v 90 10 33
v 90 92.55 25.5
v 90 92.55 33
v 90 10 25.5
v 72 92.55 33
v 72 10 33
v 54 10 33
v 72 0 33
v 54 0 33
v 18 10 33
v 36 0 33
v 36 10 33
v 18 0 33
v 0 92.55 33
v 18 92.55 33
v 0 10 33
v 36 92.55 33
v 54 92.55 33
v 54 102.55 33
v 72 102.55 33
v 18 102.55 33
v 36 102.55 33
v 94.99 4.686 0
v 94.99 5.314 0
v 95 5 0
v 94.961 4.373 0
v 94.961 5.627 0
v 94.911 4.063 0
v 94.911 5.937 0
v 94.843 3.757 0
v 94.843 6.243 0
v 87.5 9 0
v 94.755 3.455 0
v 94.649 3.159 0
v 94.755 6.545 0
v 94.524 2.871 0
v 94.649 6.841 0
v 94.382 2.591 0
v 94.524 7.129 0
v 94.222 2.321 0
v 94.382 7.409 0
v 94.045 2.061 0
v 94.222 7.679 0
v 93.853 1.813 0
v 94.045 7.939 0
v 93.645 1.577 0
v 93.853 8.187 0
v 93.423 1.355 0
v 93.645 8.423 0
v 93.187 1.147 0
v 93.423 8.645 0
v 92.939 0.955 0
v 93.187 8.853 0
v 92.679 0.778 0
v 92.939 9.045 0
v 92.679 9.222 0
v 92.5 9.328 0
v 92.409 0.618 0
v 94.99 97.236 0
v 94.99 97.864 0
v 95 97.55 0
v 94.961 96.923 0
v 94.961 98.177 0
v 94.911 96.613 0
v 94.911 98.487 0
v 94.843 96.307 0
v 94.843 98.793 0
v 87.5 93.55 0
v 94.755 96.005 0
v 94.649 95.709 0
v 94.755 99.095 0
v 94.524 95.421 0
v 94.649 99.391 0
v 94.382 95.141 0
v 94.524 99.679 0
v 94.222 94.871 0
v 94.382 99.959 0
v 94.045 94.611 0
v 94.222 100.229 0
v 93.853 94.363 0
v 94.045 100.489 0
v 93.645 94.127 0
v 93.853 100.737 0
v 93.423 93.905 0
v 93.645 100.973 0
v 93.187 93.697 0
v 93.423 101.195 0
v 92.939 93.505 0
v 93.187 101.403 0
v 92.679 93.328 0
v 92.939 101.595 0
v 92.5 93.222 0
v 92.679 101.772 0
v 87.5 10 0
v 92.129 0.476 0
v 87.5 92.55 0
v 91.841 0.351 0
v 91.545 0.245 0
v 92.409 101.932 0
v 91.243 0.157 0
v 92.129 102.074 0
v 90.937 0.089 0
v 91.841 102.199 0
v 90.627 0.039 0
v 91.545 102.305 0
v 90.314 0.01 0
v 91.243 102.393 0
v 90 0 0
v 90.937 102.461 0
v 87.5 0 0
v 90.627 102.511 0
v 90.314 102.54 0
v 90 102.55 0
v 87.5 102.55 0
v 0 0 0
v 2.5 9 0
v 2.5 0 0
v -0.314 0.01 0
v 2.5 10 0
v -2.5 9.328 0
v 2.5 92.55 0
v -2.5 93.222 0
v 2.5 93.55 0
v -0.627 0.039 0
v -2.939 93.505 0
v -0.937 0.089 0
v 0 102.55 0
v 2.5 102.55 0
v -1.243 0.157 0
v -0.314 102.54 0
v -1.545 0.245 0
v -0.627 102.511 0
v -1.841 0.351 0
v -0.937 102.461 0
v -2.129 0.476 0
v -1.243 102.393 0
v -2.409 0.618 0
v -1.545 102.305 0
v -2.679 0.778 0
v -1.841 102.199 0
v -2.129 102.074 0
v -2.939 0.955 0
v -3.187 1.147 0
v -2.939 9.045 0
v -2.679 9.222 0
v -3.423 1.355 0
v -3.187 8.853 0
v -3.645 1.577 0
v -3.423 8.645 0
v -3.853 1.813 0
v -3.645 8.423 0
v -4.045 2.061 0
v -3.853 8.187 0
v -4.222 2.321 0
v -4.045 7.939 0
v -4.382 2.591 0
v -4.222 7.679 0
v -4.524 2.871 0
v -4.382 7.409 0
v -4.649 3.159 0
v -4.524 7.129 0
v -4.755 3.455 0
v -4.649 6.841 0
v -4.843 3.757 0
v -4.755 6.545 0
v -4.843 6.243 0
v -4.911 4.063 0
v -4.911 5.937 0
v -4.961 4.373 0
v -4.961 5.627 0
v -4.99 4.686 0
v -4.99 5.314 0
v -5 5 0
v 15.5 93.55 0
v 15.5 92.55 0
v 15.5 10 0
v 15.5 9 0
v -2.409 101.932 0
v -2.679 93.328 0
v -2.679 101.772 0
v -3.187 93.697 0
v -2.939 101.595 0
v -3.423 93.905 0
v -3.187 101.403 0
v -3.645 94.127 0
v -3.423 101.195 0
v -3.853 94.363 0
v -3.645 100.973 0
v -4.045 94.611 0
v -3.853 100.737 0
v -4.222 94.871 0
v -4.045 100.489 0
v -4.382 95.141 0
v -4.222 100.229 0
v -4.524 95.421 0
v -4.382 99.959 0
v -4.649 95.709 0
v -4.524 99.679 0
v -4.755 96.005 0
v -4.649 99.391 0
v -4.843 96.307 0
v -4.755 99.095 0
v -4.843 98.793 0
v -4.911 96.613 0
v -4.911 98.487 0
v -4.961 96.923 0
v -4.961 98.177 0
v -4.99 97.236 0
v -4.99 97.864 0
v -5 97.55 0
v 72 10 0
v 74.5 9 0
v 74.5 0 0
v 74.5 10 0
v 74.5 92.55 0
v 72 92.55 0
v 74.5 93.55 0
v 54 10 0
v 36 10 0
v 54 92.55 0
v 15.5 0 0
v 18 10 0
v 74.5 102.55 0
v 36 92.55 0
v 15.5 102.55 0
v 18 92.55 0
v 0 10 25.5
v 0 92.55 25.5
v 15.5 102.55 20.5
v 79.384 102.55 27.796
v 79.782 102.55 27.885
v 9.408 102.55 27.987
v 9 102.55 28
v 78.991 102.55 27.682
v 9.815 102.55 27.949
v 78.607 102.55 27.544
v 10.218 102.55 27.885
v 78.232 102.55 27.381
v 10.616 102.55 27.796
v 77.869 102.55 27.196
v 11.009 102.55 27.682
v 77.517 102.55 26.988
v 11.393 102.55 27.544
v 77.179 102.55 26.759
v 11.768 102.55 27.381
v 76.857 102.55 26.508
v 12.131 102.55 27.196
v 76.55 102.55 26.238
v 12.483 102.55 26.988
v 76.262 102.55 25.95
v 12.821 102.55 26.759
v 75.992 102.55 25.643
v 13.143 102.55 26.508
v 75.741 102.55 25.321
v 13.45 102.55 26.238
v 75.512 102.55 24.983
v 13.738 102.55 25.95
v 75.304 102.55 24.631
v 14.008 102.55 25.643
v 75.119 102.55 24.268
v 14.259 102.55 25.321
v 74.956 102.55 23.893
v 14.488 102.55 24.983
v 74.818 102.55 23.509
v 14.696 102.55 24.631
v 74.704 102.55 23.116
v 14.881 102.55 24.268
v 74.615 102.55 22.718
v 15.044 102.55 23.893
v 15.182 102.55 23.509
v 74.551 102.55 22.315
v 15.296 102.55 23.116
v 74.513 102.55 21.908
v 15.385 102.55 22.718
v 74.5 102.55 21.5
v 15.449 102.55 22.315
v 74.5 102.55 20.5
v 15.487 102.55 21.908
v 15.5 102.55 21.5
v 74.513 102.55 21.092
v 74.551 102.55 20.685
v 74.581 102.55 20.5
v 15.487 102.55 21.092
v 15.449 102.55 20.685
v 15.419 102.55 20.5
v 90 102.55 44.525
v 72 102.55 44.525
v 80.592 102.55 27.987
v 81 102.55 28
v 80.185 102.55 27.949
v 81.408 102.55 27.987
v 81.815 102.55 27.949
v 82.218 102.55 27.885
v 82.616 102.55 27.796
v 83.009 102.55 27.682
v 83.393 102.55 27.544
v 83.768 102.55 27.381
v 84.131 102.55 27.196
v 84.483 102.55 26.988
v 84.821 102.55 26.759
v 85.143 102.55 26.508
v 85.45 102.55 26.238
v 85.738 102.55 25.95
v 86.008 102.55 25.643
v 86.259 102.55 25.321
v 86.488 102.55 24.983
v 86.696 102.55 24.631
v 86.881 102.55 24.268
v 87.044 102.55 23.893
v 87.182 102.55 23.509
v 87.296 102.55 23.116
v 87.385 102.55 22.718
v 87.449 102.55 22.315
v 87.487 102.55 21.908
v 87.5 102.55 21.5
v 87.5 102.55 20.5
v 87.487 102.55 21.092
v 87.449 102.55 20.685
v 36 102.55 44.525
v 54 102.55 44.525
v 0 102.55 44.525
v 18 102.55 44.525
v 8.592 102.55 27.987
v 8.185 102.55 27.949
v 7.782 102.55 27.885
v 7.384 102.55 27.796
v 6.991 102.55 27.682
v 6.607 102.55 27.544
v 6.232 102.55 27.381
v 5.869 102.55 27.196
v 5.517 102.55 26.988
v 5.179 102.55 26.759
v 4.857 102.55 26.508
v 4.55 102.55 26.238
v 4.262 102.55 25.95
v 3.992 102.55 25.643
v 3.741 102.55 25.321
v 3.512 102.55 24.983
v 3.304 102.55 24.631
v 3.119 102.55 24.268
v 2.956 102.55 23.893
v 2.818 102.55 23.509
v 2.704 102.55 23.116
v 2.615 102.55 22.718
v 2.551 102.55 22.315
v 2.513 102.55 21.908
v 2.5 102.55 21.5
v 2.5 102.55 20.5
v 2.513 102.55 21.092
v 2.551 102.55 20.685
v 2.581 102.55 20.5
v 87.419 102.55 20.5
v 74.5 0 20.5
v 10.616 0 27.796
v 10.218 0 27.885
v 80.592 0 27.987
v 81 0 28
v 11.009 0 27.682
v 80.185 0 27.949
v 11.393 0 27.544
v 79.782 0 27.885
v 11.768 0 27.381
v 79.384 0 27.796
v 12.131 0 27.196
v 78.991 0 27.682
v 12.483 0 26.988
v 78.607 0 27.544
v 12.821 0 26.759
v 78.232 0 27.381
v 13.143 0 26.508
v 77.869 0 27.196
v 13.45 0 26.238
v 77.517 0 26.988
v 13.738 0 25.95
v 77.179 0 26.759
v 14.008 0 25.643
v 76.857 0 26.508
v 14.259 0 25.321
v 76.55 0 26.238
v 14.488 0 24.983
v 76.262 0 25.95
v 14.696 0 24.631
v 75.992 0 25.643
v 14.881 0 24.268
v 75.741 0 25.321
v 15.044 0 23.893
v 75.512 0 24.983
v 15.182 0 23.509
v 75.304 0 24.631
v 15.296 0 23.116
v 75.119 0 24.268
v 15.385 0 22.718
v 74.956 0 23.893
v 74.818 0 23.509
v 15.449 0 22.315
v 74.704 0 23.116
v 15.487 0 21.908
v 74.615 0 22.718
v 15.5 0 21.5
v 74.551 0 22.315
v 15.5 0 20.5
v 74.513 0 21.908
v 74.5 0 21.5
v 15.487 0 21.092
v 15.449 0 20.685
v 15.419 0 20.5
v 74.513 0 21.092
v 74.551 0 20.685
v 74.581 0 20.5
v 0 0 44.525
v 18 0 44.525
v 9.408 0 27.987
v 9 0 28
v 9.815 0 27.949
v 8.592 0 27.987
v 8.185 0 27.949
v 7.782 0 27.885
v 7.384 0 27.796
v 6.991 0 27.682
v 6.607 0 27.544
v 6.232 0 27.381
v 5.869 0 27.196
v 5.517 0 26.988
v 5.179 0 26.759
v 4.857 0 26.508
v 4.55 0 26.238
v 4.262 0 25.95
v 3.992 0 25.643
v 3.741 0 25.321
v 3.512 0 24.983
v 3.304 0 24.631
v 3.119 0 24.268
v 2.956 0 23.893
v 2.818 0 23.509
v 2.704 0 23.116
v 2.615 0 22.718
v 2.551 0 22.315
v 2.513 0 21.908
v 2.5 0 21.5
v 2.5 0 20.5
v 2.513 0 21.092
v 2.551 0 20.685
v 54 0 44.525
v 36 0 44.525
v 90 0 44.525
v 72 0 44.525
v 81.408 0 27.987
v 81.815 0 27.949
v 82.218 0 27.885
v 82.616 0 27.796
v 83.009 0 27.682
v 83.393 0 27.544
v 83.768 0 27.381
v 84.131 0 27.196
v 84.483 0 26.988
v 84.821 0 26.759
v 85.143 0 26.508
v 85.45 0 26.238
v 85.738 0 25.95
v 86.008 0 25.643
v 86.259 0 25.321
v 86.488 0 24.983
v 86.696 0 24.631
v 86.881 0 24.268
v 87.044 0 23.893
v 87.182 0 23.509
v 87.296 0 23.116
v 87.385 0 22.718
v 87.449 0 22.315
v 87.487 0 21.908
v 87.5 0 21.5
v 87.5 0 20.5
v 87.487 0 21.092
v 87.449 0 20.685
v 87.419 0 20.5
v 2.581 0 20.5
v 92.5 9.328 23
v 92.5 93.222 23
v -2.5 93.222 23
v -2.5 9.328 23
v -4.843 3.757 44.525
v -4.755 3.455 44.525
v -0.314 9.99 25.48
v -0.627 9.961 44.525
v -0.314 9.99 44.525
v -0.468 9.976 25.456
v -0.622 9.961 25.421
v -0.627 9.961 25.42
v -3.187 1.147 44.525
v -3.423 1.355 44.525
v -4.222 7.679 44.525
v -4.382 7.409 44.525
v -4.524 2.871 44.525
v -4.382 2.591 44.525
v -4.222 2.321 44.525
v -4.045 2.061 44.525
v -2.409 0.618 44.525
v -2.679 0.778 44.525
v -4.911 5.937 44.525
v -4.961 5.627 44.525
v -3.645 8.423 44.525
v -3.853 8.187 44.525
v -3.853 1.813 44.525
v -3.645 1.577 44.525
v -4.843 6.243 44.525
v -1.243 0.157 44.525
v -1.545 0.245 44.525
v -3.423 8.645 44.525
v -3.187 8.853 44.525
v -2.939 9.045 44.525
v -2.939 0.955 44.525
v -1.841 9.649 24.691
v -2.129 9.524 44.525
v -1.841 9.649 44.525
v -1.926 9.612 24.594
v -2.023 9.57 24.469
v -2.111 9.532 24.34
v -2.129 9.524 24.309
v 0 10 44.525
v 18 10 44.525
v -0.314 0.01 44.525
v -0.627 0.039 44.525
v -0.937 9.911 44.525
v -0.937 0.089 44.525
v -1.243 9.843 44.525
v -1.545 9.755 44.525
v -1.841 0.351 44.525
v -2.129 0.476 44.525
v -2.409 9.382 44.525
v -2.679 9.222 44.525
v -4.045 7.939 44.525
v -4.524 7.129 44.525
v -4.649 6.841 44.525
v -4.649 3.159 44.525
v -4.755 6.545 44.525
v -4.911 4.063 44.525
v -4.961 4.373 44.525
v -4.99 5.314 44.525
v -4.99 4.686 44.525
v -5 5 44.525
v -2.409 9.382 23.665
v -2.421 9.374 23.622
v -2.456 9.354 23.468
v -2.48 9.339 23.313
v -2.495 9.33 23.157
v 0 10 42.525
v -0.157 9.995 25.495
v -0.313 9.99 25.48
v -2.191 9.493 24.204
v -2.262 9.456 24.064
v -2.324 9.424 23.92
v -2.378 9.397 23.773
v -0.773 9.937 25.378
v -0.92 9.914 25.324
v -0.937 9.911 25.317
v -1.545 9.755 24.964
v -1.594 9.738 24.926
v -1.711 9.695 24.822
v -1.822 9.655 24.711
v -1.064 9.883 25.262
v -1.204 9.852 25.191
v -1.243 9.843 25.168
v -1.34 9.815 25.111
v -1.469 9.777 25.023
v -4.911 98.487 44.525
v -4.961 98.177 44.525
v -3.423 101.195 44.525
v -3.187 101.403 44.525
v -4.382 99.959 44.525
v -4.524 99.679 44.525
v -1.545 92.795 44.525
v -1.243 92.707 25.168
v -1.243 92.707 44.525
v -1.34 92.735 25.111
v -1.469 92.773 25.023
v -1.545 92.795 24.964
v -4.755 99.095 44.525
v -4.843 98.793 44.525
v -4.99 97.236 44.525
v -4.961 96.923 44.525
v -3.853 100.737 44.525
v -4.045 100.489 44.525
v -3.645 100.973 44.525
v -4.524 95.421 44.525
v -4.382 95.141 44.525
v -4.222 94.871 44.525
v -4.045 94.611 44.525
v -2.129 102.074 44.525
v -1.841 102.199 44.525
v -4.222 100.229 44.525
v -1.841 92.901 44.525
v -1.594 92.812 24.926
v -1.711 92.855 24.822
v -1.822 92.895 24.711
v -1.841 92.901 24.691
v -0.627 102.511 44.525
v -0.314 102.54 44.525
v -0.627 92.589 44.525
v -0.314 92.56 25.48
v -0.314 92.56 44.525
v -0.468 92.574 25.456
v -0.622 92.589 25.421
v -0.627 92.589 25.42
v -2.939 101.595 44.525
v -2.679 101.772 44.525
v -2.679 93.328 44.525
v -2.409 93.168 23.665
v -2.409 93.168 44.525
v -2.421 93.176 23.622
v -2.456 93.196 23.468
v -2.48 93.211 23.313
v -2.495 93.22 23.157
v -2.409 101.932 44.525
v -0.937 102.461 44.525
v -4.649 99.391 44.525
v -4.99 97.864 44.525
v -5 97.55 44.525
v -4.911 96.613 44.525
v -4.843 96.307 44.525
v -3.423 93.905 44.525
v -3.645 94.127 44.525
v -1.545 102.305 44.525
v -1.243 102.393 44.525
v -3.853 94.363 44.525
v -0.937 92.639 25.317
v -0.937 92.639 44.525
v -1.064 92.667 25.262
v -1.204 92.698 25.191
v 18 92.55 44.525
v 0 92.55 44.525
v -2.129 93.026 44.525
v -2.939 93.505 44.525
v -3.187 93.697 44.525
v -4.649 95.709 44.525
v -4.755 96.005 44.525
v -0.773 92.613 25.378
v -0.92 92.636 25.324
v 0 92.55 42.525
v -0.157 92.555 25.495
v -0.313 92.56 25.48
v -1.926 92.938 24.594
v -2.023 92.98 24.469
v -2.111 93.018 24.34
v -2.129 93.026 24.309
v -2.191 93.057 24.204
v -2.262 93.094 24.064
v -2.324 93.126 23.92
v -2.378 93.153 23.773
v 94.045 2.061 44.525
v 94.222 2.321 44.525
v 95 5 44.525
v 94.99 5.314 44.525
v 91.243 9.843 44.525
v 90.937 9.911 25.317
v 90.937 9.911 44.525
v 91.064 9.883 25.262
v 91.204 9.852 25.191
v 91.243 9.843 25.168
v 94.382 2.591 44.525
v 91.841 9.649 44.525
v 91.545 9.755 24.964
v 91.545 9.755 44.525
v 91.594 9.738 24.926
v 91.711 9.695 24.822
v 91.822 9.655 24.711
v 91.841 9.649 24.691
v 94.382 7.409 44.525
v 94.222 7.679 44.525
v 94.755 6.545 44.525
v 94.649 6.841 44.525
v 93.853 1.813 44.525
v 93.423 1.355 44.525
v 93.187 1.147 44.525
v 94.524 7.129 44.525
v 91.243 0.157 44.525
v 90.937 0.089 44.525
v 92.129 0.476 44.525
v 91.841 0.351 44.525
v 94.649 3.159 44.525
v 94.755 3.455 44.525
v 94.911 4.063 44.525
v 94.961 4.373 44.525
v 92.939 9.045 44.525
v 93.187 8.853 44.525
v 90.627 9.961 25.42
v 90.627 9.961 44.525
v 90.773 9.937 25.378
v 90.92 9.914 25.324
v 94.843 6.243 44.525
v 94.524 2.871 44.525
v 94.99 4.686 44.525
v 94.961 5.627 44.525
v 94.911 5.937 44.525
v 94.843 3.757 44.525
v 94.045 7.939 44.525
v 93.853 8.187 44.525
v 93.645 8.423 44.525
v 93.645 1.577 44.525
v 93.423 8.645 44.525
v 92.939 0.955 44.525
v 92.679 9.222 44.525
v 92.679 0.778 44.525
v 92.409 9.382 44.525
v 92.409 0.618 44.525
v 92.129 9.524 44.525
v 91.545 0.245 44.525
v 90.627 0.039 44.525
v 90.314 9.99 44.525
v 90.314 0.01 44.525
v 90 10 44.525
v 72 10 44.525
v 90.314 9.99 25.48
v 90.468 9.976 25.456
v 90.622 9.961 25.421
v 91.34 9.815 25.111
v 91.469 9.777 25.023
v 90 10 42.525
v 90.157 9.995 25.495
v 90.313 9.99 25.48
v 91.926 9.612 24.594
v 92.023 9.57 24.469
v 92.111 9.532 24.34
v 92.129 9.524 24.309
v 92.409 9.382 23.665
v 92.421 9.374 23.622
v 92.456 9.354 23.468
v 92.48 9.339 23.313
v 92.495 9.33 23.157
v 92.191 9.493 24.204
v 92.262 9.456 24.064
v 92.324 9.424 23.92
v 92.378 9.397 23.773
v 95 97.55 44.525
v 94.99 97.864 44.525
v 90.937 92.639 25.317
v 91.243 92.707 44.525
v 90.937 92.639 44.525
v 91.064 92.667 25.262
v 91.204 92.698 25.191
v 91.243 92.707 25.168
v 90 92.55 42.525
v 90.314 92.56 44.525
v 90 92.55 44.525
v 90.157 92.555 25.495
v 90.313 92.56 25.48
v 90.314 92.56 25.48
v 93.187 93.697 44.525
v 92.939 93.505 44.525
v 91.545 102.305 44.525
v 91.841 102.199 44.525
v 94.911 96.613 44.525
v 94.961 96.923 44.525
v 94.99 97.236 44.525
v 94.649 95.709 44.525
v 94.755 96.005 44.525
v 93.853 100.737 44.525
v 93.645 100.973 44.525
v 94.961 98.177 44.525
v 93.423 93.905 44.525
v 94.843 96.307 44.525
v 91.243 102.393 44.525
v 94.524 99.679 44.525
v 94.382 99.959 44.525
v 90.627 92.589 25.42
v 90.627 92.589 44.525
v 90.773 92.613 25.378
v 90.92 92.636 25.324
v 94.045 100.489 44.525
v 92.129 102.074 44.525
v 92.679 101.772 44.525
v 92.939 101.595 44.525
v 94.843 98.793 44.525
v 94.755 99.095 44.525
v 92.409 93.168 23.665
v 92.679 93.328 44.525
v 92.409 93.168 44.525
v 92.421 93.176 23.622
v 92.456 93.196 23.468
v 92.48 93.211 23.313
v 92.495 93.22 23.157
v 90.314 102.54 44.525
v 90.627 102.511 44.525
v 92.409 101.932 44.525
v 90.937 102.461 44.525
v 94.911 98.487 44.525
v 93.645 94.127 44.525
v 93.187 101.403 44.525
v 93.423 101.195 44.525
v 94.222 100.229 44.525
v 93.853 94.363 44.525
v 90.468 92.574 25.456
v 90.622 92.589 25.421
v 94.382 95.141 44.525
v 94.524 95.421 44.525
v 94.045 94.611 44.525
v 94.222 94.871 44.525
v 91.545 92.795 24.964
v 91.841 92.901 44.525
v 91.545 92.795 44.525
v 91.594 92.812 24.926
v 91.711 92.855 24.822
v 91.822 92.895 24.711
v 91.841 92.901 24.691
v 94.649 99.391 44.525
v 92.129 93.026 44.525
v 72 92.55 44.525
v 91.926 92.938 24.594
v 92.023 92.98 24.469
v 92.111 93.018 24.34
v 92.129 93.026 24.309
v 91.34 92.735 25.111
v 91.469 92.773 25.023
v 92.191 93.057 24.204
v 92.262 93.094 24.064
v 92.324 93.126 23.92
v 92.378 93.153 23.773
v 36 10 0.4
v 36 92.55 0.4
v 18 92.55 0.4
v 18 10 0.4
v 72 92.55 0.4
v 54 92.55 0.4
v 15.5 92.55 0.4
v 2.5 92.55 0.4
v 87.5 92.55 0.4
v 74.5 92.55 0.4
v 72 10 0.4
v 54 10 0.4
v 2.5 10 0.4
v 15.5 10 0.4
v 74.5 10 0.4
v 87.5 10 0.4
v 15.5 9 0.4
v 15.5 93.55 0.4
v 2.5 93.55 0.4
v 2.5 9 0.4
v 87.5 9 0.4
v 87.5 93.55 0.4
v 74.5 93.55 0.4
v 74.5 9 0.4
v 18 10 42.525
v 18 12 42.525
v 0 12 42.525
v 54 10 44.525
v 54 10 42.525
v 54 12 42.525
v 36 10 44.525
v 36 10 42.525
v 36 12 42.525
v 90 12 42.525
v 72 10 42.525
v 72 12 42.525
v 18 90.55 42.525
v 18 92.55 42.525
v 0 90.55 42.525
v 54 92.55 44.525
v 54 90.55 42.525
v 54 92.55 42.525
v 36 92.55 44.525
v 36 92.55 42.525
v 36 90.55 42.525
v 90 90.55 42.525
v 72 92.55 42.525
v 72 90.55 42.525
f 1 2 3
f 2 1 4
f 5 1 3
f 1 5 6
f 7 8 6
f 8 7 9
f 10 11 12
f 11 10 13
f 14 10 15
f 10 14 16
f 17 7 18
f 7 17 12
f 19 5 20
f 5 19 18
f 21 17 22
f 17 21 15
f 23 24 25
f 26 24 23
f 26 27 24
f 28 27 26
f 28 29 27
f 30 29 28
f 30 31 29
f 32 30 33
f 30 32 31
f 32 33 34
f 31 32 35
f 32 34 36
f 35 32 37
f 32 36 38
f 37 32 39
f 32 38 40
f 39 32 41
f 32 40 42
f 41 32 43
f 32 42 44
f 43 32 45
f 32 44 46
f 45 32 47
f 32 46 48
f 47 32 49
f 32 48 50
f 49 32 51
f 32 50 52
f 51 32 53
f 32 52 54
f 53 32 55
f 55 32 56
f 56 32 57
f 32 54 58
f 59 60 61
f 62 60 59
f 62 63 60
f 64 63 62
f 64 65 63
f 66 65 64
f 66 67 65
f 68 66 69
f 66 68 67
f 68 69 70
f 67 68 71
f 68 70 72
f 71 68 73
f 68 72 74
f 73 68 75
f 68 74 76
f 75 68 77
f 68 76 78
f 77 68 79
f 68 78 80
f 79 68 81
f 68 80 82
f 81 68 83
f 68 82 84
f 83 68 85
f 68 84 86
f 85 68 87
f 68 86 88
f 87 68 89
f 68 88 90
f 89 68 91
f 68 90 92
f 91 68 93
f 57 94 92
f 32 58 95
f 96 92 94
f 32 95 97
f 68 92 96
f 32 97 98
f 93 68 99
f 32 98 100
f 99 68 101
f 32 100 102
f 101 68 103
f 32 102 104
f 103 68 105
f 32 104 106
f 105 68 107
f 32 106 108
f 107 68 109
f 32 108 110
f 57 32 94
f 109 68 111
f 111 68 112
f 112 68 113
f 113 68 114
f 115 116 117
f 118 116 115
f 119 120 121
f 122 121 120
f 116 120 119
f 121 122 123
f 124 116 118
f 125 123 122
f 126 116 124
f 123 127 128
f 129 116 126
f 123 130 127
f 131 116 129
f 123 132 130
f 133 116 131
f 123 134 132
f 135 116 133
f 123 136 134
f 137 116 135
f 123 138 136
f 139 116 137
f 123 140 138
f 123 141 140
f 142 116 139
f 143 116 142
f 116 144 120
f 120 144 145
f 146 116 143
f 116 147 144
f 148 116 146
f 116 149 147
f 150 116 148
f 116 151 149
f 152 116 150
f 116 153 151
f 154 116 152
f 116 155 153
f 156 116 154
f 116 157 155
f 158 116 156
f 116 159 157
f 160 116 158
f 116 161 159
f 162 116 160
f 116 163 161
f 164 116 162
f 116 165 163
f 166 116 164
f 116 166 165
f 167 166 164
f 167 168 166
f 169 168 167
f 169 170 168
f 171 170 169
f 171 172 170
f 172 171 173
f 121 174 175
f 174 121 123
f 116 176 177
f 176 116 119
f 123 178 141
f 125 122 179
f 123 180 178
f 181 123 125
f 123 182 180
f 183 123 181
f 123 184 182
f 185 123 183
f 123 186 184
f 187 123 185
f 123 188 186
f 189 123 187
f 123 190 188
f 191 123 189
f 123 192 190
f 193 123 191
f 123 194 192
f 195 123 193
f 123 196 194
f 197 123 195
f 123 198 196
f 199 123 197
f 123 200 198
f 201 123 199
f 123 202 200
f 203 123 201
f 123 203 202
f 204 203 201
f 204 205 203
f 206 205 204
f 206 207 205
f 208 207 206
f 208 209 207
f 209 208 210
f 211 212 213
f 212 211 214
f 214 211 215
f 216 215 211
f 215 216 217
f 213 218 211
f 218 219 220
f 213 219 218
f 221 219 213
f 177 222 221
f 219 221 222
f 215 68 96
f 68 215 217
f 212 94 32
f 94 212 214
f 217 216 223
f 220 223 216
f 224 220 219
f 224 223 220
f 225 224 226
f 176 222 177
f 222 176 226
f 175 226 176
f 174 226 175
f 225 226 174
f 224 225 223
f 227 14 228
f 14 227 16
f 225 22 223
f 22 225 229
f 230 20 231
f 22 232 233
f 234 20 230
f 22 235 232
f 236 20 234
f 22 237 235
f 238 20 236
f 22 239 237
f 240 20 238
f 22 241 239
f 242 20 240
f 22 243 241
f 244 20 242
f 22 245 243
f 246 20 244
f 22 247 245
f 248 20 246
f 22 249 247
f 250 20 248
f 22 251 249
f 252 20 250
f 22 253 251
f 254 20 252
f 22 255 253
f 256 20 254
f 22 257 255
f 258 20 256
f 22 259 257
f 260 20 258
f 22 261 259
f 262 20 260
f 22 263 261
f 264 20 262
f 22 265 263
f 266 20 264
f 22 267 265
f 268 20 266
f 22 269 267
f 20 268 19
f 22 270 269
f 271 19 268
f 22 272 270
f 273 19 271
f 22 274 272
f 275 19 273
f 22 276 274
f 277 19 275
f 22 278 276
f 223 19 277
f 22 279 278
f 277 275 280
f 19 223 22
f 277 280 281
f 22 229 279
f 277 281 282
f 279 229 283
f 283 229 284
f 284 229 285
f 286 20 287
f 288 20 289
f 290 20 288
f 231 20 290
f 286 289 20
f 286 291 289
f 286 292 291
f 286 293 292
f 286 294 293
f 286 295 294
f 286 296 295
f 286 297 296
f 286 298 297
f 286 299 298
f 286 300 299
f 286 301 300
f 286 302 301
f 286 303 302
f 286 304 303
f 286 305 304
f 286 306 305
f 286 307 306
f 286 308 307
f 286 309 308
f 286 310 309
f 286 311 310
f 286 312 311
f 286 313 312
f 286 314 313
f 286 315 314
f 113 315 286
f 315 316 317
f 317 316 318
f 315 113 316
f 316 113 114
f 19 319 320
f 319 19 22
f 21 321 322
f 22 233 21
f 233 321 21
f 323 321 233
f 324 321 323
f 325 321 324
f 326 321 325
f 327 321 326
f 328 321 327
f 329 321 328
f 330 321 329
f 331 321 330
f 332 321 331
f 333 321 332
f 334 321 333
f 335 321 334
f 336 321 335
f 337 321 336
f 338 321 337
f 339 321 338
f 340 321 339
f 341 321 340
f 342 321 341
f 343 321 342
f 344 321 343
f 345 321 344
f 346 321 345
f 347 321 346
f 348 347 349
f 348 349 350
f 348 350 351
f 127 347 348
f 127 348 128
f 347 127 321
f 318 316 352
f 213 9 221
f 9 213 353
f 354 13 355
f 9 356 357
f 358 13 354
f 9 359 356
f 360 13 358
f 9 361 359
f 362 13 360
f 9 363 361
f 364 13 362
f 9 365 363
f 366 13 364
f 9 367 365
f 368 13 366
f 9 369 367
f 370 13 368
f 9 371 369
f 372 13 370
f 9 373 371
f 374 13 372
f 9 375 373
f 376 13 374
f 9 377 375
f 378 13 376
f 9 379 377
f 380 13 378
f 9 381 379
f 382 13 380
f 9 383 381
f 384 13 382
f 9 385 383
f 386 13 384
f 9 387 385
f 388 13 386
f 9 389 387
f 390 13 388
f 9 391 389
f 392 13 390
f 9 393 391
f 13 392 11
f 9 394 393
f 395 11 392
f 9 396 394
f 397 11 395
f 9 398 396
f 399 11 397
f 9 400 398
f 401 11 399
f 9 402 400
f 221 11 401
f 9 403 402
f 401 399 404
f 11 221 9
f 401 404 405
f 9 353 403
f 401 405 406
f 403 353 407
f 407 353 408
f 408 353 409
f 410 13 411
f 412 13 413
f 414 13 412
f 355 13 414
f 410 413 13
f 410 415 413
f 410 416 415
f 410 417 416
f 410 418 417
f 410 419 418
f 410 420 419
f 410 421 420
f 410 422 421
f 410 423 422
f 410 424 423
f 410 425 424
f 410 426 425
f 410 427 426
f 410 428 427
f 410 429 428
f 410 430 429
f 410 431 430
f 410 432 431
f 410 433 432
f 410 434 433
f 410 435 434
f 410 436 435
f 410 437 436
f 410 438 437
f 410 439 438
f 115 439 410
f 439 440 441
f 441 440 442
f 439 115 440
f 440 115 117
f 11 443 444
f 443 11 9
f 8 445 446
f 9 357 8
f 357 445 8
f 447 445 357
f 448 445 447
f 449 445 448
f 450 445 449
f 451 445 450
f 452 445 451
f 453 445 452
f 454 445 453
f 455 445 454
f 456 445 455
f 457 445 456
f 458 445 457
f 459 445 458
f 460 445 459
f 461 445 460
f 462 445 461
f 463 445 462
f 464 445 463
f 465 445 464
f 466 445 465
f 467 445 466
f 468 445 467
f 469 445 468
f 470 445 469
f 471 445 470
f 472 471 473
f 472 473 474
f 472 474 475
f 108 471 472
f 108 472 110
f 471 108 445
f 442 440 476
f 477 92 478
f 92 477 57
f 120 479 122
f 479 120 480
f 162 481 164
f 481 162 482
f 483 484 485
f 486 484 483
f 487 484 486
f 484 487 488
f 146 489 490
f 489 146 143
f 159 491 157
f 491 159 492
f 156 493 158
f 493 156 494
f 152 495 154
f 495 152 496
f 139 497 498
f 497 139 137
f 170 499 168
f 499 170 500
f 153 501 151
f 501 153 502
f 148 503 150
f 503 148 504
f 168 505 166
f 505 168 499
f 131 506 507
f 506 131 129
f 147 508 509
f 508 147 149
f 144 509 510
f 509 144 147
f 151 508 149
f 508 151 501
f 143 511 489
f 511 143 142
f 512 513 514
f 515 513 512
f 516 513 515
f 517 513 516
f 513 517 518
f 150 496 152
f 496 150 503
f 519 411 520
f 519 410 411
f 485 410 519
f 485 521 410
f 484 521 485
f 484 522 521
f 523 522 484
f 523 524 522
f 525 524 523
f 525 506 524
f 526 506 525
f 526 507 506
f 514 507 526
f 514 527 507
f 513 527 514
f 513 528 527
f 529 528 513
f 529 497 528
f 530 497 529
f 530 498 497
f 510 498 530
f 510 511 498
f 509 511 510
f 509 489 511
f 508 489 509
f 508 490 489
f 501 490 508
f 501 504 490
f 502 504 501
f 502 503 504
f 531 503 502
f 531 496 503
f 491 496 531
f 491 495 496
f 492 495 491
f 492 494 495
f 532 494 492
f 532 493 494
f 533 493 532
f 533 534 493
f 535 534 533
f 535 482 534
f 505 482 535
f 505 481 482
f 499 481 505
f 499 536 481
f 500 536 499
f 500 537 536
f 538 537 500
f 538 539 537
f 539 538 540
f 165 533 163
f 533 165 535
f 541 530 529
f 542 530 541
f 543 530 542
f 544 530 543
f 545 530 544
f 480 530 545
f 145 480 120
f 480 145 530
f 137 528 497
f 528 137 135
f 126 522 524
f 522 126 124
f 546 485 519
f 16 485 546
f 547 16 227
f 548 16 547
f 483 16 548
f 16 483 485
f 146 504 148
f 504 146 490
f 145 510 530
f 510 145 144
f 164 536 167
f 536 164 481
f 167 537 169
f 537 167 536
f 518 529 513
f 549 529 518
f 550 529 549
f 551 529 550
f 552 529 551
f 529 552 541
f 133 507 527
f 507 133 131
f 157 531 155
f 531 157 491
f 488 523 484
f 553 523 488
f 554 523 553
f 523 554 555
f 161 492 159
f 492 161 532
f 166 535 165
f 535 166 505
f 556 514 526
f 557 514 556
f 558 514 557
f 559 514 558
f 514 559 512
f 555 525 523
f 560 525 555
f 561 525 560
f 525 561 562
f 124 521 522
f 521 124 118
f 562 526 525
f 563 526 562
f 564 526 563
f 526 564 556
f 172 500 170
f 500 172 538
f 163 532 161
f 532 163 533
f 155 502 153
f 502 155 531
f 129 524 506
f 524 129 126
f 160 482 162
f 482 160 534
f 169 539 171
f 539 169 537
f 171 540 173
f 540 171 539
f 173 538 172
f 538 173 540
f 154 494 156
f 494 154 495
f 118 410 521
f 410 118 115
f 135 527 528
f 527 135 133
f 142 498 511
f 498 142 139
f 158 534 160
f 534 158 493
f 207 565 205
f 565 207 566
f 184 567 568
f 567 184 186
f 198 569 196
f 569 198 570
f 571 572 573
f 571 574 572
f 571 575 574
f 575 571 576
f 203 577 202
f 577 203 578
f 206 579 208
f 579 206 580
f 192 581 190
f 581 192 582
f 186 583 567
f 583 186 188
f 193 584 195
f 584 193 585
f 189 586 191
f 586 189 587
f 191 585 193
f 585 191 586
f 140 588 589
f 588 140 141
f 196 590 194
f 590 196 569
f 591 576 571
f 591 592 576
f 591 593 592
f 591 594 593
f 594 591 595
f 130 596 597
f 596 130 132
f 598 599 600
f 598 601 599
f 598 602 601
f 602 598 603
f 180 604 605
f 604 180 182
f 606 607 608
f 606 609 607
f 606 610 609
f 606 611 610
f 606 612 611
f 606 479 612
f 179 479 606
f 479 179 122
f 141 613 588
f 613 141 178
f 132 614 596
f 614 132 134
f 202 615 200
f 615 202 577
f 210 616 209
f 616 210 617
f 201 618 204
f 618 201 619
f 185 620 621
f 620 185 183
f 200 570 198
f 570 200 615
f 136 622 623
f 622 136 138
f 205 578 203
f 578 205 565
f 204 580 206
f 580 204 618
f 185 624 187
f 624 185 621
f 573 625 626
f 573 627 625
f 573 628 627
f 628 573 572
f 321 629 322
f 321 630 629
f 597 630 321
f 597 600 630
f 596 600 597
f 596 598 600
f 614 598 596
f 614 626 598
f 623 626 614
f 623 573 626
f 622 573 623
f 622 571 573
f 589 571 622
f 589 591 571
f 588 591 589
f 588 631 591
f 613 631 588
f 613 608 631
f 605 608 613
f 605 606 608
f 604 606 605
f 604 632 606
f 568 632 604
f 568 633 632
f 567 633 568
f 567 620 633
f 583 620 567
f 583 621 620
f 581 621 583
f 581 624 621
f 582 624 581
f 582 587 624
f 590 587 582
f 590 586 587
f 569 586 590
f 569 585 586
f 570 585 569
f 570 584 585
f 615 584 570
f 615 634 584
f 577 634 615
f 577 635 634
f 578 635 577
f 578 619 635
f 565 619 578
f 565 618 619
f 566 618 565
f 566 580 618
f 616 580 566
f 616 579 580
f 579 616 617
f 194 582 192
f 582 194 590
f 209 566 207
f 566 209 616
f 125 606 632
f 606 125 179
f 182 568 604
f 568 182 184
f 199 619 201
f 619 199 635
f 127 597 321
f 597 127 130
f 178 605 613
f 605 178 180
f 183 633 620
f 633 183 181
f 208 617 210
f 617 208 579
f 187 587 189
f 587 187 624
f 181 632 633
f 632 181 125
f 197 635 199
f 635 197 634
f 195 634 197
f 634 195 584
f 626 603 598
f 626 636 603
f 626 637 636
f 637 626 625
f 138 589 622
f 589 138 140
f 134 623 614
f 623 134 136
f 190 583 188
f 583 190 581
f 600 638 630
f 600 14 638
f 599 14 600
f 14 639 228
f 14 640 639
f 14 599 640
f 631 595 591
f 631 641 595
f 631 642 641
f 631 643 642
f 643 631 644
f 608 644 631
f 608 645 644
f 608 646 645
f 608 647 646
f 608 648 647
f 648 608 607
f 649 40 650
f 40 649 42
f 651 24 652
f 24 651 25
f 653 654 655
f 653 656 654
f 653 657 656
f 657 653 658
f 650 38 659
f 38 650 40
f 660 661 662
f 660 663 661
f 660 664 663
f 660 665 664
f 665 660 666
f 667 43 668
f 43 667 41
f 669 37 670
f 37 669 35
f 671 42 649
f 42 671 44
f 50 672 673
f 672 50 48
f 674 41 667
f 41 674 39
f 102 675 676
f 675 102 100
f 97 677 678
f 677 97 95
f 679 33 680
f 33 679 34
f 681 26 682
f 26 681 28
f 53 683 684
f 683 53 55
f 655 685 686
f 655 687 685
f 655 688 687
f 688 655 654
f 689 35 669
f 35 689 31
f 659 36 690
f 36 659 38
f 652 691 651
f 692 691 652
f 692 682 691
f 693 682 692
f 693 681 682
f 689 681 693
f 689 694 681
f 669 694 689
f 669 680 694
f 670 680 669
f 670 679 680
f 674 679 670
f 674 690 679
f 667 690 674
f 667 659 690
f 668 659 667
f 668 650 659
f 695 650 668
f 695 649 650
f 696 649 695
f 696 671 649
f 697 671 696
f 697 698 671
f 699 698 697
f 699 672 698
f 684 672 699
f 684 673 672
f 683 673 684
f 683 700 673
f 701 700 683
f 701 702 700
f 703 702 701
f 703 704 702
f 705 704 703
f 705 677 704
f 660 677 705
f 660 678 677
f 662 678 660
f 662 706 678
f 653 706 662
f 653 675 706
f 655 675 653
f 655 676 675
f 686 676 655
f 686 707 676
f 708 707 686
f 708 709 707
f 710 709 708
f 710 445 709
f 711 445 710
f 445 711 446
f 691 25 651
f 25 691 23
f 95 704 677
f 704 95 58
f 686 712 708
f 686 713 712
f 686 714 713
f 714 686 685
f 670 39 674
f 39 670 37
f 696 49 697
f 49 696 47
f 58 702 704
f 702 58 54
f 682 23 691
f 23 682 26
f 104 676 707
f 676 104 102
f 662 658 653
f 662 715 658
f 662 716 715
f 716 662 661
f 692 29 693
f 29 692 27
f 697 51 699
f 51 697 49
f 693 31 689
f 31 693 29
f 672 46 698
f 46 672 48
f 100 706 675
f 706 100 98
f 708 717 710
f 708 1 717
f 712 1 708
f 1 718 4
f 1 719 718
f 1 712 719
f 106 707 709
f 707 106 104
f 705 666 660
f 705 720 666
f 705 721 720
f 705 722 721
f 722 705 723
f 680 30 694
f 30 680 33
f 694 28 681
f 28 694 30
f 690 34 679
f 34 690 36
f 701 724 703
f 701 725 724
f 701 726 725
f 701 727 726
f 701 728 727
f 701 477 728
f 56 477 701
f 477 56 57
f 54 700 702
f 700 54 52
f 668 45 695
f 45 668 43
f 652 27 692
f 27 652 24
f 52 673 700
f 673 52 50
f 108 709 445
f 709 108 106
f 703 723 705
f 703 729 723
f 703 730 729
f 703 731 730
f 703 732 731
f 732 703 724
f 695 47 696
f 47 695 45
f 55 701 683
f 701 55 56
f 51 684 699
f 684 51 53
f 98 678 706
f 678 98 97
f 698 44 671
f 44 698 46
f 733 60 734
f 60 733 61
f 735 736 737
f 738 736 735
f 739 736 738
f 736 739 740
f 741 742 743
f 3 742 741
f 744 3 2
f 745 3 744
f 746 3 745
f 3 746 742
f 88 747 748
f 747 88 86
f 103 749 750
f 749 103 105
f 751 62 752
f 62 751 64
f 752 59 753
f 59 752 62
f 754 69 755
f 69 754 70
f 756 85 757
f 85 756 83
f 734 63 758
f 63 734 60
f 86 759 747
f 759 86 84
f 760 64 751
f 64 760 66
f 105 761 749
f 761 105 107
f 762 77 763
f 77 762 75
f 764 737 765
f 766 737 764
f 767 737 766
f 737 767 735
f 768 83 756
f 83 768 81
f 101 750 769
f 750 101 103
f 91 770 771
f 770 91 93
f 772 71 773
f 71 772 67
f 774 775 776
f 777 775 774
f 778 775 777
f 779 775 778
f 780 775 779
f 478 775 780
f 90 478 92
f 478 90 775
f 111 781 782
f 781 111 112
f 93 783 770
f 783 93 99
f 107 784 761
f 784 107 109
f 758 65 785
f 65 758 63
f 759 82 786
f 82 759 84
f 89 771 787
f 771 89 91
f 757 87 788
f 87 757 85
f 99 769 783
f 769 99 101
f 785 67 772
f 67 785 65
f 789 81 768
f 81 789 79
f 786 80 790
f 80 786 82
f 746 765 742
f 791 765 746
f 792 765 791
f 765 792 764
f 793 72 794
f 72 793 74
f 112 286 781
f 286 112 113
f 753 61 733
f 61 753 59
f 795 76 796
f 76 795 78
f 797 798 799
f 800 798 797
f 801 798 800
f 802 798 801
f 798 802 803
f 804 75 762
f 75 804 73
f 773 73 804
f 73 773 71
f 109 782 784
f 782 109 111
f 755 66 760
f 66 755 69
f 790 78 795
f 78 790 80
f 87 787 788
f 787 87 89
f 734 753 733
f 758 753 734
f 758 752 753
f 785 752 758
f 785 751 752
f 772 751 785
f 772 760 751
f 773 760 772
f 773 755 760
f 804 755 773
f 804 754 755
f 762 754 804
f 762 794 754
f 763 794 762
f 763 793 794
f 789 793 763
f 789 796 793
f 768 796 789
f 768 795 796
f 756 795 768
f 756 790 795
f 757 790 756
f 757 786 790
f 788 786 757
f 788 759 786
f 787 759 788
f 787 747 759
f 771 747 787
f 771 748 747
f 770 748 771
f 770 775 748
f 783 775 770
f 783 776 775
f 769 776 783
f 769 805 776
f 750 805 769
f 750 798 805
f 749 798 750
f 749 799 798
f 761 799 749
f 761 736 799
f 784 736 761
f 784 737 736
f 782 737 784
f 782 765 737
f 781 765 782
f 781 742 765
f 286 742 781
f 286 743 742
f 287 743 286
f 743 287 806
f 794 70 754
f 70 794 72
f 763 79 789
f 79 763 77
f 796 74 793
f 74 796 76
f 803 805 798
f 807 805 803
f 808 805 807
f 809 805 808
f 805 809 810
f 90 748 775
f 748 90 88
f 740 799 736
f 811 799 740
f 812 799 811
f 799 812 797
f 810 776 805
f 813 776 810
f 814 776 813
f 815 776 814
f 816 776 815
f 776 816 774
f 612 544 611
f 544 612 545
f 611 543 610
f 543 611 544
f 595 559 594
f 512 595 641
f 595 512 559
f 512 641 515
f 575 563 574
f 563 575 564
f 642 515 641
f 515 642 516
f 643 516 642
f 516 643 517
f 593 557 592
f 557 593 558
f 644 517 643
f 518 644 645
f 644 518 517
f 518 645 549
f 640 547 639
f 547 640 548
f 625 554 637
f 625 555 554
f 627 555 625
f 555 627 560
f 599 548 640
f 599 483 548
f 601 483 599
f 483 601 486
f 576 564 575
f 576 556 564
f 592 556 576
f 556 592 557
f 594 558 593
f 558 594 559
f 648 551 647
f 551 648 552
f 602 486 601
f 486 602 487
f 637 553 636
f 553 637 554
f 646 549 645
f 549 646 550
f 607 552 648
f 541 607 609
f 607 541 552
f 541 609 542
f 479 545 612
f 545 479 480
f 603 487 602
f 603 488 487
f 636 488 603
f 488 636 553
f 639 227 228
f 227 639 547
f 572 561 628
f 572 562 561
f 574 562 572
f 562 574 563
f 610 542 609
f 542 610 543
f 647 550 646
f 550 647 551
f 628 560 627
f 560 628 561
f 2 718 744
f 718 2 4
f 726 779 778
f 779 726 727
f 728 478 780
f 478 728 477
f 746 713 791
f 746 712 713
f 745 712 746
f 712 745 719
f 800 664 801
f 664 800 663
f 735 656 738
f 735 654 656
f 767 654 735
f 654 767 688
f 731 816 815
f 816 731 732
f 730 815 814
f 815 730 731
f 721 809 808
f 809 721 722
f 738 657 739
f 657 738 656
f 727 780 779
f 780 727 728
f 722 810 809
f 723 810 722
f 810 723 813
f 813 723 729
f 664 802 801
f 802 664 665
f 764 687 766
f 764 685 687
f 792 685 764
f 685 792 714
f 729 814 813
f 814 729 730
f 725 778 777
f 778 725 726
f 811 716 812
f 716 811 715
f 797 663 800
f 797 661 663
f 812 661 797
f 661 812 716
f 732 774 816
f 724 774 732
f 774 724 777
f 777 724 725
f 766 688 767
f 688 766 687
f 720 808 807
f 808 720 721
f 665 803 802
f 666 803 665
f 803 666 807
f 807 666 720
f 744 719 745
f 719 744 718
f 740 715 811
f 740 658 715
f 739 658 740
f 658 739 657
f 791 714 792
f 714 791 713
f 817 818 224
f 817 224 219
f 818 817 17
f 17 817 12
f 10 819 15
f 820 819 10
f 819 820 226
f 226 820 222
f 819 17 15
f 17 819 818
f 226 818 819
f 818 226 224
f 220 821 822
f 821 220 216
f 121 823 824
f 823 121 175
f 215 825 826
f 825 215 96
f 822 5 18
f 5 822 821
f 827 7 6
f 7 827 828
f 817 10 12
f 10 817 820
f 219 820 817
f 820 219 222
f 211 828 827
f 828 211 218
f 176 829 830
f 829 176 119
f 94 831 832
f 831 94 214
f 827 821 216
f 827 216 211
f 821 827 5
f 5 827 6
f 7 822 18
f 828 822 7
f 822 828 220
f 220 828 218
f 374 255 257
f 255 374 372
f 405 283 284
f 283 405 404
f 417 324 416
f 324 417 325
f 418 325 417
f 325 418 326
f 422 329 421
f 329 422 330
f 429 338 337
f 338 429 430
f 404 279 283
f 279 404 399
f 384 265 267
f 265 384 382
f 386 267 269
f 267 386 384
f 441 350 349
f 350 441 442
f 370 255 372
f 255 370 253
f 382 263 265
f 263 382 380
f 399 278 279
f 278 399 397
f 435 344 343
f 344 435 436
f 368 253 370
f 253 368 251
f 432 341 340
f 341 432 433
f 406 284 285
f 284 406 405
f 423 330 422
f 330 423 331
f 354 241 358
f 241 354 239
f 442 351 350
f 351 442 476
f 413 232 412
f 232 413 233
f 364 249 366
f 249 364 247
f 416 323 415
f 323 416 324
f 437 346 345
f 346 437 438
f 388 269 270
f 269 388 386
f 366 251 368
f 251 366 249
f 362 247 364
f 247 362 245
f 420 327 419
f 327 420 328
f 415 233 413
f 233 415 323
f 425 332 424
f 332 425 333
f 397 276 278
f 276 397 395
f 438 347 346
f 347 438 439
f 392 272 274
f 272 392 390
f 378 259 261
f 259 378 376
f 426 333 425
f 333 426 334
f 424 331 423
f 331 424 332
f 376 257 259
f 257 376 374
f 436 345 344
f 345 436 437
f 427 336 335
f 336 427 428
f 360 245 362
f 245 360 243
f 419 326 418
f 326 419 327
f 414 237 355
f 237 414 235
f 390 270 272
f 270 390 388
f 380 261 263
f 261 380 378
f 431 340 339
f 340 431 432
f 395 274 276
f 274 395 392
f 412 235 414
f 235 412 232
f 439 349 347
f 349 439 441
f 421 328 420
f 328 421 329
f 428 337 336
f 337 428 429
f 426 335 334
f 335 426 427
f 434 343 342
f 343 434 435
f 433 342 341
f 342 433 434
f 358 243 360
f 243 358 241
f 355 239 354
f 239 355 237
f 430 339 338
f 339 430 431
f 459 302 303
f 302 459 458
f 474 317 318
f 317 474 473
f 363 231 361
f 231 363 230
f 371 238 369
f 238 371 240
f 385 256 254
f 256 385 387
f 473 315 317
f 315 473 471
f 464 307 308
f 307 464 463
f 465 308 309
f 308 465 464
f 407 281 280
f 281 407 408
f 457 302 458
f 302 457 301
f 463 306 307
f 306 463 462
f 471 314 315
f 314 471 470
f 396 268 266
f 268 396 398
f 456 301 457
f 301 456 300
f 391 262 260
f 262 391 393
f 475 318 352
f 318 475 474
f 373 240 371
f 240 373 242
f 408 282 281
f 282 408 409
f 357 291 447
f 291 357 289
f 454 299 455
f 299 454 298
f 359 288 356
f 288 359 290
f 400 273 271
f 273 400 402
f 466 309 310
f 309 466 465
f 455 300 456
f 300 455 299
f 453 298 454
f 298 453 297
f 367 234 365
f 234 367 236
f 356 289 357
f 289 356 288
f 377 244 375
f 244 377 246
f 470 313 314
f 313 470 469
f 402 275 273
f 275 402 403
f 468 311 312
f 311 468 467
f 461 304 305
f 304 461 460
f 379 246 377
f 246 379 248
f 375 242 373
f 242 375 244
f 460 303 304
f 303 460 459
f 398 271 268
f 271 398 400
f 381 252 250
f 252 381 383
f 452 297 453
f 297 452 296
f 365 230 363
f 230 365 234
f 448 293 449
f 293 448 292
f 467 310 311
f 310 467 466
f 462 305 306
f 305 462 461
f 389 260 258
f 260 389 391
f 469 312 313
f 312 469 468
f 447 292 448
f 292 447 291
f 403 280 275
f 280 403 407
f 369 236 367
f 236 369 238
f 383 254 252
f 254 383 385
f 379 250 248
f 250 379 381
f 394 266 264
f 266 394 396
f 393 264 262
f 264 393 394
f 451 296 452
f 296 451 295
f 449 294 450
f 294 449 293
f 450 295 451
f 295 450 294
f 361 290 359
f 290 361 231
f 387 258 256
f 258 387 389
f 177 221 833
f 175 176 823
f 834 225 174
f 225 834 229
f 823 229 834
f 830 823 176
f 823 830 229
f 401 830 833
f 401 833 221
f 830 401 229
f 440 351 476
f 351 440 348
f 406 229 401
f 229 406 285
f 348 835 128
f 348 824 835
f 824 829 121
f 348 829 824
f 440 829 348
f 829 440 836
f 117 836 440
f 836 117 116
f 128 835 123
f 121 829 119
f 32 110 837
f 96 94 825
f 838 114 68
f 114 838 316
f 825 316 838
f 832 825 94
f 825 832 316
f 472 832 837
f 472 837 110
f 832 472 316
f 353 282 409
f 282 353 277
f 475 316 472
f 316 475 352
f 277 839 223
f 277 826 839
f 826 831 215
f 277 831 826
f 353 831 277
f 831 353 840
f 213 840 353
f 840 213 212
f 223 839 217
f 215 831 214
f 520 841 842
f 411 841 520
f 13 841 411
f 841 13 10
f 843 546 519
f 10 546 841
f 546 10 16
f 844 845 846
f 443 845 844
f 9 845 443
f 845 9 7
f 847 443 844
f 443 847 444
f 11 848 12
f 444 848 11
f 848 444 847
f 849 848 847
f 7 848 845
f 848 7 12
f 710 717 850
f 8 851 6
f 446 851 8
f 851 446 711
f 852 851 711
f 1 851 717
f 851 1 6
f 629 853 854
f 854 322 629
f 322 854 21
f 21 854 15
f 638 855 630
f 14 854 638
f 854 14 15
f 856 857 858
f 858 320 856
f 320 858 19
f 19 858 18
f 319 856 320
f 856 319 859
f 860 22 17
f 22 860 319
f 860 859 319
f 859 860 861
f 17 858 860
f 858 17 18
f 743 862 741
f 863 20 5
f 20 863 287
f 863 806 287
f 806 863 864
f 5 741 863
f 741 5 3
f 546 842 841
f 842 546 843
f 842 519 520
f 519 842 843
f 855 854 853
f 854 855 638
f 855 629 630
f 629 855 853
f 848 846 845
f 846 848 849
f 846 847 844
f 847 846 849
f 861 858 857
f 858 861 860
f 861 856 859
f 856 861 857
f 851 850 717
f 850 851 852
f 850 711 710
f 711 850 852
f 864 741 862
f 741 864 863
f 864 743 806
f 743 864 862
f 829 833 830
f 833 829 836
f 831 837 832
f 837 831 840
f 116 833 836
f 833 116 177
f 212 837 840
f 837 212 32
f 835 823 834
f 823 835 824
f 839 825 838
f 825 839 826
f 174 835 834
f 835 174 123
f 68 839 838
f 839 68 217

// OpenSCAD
block_base_height = 33; // mm
inner_length = 3.25 * 2.54 * 10; // 3.25 inches
inner_height = 3/8 * 2.54 * 10; //0.75 inches
bar_width = 18;
arm_latch = 2;
length_extension = 10;
thin_wall = 2.5;
cylinder_width = bar_width - 2*thin_wall;
total_length = length_extension + inner_length + length_extension;
$fn = 100;

union() {
    difference() {
        union() {
            // block
            cube([5*bar_width, total_length, block_base_height]);
            translate([-thin_wall, thin_wall, 0])
                cube([5*bar_width + 2*thin_wall, inner_length + length_extension, block_base_height - length_extension]);
            // rounded 3 corners
            translate([0, length_extension/2, 0])
                cylinder(block_base_height + inner_height + arm_latch, r = length_extension/2);
            translate([0, total_length - length_extension/2, 0])
                cylinder(block_base_height + inner_height + arm_latch, r = length_extension/2);
            translate([5*bar_width, length_extension/2, 0])
                cylinder(block_base_height + inner_height + arm_latch, r = length_extension/2);
            translate([5*bar_width, total_length - length_extension/2, 0])
                cylinder(block_base_height + inner_height + arm_latch, r = length_extension/2);
            // rounded top
            translate([0, thin_wall, block_base_height - length_extension])
                rotate([-90,0,0])
                    cylinder(h = inner_length + length_extension, r = thin_wall);
            translate([5*bar_width, thin_wall, block_base_height - length_extension])
                rotate([-90,0,0])
                    cylinder(h = inner_length + length_extension, r = thin_wall);
        }
        for (i = [1,3]) {
            translate([i*bar_width, length_extension, -1]) {
                cube([bar_width, inner_length, block_base_height + 2]);
            }
        }
        for (i = [0.5, 4.5]) {
            translate([i*bar_width, -1, block_base_height - cylinder_width/2 - 5]) {
                rotate([-90, 0, 0])
                cylinder(h = total_length + 2, r = cylinder_width / 2, center = false);
            }
        }
        for (i = [0, 4]) {
            translate([2.5 + i*bar_width, -1, -1]) {
                cube([cylinder_width, total_length + 2, block_base_height - cylinder_width/2 - 5]);
            }
        }
    }
    for (j = [0, length_extension + inner_length]) {
        for (i = [0, 2, 4]) {
            translate([i*bar_width, j, block_base_height]) {
                cube([bar_width, length_extension, inner_height + arm_latch]);
            }
        }
    }
    for (i = [0, 2, 4]) {
        translate([i*bar_width, length_extension, block_base_height + inner_height + arm_latch]) {
            rotate([0, 90, 0])
            linear_extrude(bar_width) {
              polygon([[0, 0], [arm_latch, 0], [arm_latch, arm_latch]]);
            }
        }
        translate([(i+1)*bar_width, length_extension + inner_length, block_base_height + inner_height + arm_latch]) {
            rotate([-180, 90, 0])
            linear_extrude(bar_width) {
              polygon([[0, 0], [arm_latch, 0], [arm_latch, arm_latch]]);
            }
        }
    }
    // straps to hold sides in
    translate([0, length_extension - 1, 0])
        cube([5*bar_width, 1, 0.4]);
    translate([0, total_length - length_extension, 0])
        cube([5*bar_width, 1, 0.4]);

}
